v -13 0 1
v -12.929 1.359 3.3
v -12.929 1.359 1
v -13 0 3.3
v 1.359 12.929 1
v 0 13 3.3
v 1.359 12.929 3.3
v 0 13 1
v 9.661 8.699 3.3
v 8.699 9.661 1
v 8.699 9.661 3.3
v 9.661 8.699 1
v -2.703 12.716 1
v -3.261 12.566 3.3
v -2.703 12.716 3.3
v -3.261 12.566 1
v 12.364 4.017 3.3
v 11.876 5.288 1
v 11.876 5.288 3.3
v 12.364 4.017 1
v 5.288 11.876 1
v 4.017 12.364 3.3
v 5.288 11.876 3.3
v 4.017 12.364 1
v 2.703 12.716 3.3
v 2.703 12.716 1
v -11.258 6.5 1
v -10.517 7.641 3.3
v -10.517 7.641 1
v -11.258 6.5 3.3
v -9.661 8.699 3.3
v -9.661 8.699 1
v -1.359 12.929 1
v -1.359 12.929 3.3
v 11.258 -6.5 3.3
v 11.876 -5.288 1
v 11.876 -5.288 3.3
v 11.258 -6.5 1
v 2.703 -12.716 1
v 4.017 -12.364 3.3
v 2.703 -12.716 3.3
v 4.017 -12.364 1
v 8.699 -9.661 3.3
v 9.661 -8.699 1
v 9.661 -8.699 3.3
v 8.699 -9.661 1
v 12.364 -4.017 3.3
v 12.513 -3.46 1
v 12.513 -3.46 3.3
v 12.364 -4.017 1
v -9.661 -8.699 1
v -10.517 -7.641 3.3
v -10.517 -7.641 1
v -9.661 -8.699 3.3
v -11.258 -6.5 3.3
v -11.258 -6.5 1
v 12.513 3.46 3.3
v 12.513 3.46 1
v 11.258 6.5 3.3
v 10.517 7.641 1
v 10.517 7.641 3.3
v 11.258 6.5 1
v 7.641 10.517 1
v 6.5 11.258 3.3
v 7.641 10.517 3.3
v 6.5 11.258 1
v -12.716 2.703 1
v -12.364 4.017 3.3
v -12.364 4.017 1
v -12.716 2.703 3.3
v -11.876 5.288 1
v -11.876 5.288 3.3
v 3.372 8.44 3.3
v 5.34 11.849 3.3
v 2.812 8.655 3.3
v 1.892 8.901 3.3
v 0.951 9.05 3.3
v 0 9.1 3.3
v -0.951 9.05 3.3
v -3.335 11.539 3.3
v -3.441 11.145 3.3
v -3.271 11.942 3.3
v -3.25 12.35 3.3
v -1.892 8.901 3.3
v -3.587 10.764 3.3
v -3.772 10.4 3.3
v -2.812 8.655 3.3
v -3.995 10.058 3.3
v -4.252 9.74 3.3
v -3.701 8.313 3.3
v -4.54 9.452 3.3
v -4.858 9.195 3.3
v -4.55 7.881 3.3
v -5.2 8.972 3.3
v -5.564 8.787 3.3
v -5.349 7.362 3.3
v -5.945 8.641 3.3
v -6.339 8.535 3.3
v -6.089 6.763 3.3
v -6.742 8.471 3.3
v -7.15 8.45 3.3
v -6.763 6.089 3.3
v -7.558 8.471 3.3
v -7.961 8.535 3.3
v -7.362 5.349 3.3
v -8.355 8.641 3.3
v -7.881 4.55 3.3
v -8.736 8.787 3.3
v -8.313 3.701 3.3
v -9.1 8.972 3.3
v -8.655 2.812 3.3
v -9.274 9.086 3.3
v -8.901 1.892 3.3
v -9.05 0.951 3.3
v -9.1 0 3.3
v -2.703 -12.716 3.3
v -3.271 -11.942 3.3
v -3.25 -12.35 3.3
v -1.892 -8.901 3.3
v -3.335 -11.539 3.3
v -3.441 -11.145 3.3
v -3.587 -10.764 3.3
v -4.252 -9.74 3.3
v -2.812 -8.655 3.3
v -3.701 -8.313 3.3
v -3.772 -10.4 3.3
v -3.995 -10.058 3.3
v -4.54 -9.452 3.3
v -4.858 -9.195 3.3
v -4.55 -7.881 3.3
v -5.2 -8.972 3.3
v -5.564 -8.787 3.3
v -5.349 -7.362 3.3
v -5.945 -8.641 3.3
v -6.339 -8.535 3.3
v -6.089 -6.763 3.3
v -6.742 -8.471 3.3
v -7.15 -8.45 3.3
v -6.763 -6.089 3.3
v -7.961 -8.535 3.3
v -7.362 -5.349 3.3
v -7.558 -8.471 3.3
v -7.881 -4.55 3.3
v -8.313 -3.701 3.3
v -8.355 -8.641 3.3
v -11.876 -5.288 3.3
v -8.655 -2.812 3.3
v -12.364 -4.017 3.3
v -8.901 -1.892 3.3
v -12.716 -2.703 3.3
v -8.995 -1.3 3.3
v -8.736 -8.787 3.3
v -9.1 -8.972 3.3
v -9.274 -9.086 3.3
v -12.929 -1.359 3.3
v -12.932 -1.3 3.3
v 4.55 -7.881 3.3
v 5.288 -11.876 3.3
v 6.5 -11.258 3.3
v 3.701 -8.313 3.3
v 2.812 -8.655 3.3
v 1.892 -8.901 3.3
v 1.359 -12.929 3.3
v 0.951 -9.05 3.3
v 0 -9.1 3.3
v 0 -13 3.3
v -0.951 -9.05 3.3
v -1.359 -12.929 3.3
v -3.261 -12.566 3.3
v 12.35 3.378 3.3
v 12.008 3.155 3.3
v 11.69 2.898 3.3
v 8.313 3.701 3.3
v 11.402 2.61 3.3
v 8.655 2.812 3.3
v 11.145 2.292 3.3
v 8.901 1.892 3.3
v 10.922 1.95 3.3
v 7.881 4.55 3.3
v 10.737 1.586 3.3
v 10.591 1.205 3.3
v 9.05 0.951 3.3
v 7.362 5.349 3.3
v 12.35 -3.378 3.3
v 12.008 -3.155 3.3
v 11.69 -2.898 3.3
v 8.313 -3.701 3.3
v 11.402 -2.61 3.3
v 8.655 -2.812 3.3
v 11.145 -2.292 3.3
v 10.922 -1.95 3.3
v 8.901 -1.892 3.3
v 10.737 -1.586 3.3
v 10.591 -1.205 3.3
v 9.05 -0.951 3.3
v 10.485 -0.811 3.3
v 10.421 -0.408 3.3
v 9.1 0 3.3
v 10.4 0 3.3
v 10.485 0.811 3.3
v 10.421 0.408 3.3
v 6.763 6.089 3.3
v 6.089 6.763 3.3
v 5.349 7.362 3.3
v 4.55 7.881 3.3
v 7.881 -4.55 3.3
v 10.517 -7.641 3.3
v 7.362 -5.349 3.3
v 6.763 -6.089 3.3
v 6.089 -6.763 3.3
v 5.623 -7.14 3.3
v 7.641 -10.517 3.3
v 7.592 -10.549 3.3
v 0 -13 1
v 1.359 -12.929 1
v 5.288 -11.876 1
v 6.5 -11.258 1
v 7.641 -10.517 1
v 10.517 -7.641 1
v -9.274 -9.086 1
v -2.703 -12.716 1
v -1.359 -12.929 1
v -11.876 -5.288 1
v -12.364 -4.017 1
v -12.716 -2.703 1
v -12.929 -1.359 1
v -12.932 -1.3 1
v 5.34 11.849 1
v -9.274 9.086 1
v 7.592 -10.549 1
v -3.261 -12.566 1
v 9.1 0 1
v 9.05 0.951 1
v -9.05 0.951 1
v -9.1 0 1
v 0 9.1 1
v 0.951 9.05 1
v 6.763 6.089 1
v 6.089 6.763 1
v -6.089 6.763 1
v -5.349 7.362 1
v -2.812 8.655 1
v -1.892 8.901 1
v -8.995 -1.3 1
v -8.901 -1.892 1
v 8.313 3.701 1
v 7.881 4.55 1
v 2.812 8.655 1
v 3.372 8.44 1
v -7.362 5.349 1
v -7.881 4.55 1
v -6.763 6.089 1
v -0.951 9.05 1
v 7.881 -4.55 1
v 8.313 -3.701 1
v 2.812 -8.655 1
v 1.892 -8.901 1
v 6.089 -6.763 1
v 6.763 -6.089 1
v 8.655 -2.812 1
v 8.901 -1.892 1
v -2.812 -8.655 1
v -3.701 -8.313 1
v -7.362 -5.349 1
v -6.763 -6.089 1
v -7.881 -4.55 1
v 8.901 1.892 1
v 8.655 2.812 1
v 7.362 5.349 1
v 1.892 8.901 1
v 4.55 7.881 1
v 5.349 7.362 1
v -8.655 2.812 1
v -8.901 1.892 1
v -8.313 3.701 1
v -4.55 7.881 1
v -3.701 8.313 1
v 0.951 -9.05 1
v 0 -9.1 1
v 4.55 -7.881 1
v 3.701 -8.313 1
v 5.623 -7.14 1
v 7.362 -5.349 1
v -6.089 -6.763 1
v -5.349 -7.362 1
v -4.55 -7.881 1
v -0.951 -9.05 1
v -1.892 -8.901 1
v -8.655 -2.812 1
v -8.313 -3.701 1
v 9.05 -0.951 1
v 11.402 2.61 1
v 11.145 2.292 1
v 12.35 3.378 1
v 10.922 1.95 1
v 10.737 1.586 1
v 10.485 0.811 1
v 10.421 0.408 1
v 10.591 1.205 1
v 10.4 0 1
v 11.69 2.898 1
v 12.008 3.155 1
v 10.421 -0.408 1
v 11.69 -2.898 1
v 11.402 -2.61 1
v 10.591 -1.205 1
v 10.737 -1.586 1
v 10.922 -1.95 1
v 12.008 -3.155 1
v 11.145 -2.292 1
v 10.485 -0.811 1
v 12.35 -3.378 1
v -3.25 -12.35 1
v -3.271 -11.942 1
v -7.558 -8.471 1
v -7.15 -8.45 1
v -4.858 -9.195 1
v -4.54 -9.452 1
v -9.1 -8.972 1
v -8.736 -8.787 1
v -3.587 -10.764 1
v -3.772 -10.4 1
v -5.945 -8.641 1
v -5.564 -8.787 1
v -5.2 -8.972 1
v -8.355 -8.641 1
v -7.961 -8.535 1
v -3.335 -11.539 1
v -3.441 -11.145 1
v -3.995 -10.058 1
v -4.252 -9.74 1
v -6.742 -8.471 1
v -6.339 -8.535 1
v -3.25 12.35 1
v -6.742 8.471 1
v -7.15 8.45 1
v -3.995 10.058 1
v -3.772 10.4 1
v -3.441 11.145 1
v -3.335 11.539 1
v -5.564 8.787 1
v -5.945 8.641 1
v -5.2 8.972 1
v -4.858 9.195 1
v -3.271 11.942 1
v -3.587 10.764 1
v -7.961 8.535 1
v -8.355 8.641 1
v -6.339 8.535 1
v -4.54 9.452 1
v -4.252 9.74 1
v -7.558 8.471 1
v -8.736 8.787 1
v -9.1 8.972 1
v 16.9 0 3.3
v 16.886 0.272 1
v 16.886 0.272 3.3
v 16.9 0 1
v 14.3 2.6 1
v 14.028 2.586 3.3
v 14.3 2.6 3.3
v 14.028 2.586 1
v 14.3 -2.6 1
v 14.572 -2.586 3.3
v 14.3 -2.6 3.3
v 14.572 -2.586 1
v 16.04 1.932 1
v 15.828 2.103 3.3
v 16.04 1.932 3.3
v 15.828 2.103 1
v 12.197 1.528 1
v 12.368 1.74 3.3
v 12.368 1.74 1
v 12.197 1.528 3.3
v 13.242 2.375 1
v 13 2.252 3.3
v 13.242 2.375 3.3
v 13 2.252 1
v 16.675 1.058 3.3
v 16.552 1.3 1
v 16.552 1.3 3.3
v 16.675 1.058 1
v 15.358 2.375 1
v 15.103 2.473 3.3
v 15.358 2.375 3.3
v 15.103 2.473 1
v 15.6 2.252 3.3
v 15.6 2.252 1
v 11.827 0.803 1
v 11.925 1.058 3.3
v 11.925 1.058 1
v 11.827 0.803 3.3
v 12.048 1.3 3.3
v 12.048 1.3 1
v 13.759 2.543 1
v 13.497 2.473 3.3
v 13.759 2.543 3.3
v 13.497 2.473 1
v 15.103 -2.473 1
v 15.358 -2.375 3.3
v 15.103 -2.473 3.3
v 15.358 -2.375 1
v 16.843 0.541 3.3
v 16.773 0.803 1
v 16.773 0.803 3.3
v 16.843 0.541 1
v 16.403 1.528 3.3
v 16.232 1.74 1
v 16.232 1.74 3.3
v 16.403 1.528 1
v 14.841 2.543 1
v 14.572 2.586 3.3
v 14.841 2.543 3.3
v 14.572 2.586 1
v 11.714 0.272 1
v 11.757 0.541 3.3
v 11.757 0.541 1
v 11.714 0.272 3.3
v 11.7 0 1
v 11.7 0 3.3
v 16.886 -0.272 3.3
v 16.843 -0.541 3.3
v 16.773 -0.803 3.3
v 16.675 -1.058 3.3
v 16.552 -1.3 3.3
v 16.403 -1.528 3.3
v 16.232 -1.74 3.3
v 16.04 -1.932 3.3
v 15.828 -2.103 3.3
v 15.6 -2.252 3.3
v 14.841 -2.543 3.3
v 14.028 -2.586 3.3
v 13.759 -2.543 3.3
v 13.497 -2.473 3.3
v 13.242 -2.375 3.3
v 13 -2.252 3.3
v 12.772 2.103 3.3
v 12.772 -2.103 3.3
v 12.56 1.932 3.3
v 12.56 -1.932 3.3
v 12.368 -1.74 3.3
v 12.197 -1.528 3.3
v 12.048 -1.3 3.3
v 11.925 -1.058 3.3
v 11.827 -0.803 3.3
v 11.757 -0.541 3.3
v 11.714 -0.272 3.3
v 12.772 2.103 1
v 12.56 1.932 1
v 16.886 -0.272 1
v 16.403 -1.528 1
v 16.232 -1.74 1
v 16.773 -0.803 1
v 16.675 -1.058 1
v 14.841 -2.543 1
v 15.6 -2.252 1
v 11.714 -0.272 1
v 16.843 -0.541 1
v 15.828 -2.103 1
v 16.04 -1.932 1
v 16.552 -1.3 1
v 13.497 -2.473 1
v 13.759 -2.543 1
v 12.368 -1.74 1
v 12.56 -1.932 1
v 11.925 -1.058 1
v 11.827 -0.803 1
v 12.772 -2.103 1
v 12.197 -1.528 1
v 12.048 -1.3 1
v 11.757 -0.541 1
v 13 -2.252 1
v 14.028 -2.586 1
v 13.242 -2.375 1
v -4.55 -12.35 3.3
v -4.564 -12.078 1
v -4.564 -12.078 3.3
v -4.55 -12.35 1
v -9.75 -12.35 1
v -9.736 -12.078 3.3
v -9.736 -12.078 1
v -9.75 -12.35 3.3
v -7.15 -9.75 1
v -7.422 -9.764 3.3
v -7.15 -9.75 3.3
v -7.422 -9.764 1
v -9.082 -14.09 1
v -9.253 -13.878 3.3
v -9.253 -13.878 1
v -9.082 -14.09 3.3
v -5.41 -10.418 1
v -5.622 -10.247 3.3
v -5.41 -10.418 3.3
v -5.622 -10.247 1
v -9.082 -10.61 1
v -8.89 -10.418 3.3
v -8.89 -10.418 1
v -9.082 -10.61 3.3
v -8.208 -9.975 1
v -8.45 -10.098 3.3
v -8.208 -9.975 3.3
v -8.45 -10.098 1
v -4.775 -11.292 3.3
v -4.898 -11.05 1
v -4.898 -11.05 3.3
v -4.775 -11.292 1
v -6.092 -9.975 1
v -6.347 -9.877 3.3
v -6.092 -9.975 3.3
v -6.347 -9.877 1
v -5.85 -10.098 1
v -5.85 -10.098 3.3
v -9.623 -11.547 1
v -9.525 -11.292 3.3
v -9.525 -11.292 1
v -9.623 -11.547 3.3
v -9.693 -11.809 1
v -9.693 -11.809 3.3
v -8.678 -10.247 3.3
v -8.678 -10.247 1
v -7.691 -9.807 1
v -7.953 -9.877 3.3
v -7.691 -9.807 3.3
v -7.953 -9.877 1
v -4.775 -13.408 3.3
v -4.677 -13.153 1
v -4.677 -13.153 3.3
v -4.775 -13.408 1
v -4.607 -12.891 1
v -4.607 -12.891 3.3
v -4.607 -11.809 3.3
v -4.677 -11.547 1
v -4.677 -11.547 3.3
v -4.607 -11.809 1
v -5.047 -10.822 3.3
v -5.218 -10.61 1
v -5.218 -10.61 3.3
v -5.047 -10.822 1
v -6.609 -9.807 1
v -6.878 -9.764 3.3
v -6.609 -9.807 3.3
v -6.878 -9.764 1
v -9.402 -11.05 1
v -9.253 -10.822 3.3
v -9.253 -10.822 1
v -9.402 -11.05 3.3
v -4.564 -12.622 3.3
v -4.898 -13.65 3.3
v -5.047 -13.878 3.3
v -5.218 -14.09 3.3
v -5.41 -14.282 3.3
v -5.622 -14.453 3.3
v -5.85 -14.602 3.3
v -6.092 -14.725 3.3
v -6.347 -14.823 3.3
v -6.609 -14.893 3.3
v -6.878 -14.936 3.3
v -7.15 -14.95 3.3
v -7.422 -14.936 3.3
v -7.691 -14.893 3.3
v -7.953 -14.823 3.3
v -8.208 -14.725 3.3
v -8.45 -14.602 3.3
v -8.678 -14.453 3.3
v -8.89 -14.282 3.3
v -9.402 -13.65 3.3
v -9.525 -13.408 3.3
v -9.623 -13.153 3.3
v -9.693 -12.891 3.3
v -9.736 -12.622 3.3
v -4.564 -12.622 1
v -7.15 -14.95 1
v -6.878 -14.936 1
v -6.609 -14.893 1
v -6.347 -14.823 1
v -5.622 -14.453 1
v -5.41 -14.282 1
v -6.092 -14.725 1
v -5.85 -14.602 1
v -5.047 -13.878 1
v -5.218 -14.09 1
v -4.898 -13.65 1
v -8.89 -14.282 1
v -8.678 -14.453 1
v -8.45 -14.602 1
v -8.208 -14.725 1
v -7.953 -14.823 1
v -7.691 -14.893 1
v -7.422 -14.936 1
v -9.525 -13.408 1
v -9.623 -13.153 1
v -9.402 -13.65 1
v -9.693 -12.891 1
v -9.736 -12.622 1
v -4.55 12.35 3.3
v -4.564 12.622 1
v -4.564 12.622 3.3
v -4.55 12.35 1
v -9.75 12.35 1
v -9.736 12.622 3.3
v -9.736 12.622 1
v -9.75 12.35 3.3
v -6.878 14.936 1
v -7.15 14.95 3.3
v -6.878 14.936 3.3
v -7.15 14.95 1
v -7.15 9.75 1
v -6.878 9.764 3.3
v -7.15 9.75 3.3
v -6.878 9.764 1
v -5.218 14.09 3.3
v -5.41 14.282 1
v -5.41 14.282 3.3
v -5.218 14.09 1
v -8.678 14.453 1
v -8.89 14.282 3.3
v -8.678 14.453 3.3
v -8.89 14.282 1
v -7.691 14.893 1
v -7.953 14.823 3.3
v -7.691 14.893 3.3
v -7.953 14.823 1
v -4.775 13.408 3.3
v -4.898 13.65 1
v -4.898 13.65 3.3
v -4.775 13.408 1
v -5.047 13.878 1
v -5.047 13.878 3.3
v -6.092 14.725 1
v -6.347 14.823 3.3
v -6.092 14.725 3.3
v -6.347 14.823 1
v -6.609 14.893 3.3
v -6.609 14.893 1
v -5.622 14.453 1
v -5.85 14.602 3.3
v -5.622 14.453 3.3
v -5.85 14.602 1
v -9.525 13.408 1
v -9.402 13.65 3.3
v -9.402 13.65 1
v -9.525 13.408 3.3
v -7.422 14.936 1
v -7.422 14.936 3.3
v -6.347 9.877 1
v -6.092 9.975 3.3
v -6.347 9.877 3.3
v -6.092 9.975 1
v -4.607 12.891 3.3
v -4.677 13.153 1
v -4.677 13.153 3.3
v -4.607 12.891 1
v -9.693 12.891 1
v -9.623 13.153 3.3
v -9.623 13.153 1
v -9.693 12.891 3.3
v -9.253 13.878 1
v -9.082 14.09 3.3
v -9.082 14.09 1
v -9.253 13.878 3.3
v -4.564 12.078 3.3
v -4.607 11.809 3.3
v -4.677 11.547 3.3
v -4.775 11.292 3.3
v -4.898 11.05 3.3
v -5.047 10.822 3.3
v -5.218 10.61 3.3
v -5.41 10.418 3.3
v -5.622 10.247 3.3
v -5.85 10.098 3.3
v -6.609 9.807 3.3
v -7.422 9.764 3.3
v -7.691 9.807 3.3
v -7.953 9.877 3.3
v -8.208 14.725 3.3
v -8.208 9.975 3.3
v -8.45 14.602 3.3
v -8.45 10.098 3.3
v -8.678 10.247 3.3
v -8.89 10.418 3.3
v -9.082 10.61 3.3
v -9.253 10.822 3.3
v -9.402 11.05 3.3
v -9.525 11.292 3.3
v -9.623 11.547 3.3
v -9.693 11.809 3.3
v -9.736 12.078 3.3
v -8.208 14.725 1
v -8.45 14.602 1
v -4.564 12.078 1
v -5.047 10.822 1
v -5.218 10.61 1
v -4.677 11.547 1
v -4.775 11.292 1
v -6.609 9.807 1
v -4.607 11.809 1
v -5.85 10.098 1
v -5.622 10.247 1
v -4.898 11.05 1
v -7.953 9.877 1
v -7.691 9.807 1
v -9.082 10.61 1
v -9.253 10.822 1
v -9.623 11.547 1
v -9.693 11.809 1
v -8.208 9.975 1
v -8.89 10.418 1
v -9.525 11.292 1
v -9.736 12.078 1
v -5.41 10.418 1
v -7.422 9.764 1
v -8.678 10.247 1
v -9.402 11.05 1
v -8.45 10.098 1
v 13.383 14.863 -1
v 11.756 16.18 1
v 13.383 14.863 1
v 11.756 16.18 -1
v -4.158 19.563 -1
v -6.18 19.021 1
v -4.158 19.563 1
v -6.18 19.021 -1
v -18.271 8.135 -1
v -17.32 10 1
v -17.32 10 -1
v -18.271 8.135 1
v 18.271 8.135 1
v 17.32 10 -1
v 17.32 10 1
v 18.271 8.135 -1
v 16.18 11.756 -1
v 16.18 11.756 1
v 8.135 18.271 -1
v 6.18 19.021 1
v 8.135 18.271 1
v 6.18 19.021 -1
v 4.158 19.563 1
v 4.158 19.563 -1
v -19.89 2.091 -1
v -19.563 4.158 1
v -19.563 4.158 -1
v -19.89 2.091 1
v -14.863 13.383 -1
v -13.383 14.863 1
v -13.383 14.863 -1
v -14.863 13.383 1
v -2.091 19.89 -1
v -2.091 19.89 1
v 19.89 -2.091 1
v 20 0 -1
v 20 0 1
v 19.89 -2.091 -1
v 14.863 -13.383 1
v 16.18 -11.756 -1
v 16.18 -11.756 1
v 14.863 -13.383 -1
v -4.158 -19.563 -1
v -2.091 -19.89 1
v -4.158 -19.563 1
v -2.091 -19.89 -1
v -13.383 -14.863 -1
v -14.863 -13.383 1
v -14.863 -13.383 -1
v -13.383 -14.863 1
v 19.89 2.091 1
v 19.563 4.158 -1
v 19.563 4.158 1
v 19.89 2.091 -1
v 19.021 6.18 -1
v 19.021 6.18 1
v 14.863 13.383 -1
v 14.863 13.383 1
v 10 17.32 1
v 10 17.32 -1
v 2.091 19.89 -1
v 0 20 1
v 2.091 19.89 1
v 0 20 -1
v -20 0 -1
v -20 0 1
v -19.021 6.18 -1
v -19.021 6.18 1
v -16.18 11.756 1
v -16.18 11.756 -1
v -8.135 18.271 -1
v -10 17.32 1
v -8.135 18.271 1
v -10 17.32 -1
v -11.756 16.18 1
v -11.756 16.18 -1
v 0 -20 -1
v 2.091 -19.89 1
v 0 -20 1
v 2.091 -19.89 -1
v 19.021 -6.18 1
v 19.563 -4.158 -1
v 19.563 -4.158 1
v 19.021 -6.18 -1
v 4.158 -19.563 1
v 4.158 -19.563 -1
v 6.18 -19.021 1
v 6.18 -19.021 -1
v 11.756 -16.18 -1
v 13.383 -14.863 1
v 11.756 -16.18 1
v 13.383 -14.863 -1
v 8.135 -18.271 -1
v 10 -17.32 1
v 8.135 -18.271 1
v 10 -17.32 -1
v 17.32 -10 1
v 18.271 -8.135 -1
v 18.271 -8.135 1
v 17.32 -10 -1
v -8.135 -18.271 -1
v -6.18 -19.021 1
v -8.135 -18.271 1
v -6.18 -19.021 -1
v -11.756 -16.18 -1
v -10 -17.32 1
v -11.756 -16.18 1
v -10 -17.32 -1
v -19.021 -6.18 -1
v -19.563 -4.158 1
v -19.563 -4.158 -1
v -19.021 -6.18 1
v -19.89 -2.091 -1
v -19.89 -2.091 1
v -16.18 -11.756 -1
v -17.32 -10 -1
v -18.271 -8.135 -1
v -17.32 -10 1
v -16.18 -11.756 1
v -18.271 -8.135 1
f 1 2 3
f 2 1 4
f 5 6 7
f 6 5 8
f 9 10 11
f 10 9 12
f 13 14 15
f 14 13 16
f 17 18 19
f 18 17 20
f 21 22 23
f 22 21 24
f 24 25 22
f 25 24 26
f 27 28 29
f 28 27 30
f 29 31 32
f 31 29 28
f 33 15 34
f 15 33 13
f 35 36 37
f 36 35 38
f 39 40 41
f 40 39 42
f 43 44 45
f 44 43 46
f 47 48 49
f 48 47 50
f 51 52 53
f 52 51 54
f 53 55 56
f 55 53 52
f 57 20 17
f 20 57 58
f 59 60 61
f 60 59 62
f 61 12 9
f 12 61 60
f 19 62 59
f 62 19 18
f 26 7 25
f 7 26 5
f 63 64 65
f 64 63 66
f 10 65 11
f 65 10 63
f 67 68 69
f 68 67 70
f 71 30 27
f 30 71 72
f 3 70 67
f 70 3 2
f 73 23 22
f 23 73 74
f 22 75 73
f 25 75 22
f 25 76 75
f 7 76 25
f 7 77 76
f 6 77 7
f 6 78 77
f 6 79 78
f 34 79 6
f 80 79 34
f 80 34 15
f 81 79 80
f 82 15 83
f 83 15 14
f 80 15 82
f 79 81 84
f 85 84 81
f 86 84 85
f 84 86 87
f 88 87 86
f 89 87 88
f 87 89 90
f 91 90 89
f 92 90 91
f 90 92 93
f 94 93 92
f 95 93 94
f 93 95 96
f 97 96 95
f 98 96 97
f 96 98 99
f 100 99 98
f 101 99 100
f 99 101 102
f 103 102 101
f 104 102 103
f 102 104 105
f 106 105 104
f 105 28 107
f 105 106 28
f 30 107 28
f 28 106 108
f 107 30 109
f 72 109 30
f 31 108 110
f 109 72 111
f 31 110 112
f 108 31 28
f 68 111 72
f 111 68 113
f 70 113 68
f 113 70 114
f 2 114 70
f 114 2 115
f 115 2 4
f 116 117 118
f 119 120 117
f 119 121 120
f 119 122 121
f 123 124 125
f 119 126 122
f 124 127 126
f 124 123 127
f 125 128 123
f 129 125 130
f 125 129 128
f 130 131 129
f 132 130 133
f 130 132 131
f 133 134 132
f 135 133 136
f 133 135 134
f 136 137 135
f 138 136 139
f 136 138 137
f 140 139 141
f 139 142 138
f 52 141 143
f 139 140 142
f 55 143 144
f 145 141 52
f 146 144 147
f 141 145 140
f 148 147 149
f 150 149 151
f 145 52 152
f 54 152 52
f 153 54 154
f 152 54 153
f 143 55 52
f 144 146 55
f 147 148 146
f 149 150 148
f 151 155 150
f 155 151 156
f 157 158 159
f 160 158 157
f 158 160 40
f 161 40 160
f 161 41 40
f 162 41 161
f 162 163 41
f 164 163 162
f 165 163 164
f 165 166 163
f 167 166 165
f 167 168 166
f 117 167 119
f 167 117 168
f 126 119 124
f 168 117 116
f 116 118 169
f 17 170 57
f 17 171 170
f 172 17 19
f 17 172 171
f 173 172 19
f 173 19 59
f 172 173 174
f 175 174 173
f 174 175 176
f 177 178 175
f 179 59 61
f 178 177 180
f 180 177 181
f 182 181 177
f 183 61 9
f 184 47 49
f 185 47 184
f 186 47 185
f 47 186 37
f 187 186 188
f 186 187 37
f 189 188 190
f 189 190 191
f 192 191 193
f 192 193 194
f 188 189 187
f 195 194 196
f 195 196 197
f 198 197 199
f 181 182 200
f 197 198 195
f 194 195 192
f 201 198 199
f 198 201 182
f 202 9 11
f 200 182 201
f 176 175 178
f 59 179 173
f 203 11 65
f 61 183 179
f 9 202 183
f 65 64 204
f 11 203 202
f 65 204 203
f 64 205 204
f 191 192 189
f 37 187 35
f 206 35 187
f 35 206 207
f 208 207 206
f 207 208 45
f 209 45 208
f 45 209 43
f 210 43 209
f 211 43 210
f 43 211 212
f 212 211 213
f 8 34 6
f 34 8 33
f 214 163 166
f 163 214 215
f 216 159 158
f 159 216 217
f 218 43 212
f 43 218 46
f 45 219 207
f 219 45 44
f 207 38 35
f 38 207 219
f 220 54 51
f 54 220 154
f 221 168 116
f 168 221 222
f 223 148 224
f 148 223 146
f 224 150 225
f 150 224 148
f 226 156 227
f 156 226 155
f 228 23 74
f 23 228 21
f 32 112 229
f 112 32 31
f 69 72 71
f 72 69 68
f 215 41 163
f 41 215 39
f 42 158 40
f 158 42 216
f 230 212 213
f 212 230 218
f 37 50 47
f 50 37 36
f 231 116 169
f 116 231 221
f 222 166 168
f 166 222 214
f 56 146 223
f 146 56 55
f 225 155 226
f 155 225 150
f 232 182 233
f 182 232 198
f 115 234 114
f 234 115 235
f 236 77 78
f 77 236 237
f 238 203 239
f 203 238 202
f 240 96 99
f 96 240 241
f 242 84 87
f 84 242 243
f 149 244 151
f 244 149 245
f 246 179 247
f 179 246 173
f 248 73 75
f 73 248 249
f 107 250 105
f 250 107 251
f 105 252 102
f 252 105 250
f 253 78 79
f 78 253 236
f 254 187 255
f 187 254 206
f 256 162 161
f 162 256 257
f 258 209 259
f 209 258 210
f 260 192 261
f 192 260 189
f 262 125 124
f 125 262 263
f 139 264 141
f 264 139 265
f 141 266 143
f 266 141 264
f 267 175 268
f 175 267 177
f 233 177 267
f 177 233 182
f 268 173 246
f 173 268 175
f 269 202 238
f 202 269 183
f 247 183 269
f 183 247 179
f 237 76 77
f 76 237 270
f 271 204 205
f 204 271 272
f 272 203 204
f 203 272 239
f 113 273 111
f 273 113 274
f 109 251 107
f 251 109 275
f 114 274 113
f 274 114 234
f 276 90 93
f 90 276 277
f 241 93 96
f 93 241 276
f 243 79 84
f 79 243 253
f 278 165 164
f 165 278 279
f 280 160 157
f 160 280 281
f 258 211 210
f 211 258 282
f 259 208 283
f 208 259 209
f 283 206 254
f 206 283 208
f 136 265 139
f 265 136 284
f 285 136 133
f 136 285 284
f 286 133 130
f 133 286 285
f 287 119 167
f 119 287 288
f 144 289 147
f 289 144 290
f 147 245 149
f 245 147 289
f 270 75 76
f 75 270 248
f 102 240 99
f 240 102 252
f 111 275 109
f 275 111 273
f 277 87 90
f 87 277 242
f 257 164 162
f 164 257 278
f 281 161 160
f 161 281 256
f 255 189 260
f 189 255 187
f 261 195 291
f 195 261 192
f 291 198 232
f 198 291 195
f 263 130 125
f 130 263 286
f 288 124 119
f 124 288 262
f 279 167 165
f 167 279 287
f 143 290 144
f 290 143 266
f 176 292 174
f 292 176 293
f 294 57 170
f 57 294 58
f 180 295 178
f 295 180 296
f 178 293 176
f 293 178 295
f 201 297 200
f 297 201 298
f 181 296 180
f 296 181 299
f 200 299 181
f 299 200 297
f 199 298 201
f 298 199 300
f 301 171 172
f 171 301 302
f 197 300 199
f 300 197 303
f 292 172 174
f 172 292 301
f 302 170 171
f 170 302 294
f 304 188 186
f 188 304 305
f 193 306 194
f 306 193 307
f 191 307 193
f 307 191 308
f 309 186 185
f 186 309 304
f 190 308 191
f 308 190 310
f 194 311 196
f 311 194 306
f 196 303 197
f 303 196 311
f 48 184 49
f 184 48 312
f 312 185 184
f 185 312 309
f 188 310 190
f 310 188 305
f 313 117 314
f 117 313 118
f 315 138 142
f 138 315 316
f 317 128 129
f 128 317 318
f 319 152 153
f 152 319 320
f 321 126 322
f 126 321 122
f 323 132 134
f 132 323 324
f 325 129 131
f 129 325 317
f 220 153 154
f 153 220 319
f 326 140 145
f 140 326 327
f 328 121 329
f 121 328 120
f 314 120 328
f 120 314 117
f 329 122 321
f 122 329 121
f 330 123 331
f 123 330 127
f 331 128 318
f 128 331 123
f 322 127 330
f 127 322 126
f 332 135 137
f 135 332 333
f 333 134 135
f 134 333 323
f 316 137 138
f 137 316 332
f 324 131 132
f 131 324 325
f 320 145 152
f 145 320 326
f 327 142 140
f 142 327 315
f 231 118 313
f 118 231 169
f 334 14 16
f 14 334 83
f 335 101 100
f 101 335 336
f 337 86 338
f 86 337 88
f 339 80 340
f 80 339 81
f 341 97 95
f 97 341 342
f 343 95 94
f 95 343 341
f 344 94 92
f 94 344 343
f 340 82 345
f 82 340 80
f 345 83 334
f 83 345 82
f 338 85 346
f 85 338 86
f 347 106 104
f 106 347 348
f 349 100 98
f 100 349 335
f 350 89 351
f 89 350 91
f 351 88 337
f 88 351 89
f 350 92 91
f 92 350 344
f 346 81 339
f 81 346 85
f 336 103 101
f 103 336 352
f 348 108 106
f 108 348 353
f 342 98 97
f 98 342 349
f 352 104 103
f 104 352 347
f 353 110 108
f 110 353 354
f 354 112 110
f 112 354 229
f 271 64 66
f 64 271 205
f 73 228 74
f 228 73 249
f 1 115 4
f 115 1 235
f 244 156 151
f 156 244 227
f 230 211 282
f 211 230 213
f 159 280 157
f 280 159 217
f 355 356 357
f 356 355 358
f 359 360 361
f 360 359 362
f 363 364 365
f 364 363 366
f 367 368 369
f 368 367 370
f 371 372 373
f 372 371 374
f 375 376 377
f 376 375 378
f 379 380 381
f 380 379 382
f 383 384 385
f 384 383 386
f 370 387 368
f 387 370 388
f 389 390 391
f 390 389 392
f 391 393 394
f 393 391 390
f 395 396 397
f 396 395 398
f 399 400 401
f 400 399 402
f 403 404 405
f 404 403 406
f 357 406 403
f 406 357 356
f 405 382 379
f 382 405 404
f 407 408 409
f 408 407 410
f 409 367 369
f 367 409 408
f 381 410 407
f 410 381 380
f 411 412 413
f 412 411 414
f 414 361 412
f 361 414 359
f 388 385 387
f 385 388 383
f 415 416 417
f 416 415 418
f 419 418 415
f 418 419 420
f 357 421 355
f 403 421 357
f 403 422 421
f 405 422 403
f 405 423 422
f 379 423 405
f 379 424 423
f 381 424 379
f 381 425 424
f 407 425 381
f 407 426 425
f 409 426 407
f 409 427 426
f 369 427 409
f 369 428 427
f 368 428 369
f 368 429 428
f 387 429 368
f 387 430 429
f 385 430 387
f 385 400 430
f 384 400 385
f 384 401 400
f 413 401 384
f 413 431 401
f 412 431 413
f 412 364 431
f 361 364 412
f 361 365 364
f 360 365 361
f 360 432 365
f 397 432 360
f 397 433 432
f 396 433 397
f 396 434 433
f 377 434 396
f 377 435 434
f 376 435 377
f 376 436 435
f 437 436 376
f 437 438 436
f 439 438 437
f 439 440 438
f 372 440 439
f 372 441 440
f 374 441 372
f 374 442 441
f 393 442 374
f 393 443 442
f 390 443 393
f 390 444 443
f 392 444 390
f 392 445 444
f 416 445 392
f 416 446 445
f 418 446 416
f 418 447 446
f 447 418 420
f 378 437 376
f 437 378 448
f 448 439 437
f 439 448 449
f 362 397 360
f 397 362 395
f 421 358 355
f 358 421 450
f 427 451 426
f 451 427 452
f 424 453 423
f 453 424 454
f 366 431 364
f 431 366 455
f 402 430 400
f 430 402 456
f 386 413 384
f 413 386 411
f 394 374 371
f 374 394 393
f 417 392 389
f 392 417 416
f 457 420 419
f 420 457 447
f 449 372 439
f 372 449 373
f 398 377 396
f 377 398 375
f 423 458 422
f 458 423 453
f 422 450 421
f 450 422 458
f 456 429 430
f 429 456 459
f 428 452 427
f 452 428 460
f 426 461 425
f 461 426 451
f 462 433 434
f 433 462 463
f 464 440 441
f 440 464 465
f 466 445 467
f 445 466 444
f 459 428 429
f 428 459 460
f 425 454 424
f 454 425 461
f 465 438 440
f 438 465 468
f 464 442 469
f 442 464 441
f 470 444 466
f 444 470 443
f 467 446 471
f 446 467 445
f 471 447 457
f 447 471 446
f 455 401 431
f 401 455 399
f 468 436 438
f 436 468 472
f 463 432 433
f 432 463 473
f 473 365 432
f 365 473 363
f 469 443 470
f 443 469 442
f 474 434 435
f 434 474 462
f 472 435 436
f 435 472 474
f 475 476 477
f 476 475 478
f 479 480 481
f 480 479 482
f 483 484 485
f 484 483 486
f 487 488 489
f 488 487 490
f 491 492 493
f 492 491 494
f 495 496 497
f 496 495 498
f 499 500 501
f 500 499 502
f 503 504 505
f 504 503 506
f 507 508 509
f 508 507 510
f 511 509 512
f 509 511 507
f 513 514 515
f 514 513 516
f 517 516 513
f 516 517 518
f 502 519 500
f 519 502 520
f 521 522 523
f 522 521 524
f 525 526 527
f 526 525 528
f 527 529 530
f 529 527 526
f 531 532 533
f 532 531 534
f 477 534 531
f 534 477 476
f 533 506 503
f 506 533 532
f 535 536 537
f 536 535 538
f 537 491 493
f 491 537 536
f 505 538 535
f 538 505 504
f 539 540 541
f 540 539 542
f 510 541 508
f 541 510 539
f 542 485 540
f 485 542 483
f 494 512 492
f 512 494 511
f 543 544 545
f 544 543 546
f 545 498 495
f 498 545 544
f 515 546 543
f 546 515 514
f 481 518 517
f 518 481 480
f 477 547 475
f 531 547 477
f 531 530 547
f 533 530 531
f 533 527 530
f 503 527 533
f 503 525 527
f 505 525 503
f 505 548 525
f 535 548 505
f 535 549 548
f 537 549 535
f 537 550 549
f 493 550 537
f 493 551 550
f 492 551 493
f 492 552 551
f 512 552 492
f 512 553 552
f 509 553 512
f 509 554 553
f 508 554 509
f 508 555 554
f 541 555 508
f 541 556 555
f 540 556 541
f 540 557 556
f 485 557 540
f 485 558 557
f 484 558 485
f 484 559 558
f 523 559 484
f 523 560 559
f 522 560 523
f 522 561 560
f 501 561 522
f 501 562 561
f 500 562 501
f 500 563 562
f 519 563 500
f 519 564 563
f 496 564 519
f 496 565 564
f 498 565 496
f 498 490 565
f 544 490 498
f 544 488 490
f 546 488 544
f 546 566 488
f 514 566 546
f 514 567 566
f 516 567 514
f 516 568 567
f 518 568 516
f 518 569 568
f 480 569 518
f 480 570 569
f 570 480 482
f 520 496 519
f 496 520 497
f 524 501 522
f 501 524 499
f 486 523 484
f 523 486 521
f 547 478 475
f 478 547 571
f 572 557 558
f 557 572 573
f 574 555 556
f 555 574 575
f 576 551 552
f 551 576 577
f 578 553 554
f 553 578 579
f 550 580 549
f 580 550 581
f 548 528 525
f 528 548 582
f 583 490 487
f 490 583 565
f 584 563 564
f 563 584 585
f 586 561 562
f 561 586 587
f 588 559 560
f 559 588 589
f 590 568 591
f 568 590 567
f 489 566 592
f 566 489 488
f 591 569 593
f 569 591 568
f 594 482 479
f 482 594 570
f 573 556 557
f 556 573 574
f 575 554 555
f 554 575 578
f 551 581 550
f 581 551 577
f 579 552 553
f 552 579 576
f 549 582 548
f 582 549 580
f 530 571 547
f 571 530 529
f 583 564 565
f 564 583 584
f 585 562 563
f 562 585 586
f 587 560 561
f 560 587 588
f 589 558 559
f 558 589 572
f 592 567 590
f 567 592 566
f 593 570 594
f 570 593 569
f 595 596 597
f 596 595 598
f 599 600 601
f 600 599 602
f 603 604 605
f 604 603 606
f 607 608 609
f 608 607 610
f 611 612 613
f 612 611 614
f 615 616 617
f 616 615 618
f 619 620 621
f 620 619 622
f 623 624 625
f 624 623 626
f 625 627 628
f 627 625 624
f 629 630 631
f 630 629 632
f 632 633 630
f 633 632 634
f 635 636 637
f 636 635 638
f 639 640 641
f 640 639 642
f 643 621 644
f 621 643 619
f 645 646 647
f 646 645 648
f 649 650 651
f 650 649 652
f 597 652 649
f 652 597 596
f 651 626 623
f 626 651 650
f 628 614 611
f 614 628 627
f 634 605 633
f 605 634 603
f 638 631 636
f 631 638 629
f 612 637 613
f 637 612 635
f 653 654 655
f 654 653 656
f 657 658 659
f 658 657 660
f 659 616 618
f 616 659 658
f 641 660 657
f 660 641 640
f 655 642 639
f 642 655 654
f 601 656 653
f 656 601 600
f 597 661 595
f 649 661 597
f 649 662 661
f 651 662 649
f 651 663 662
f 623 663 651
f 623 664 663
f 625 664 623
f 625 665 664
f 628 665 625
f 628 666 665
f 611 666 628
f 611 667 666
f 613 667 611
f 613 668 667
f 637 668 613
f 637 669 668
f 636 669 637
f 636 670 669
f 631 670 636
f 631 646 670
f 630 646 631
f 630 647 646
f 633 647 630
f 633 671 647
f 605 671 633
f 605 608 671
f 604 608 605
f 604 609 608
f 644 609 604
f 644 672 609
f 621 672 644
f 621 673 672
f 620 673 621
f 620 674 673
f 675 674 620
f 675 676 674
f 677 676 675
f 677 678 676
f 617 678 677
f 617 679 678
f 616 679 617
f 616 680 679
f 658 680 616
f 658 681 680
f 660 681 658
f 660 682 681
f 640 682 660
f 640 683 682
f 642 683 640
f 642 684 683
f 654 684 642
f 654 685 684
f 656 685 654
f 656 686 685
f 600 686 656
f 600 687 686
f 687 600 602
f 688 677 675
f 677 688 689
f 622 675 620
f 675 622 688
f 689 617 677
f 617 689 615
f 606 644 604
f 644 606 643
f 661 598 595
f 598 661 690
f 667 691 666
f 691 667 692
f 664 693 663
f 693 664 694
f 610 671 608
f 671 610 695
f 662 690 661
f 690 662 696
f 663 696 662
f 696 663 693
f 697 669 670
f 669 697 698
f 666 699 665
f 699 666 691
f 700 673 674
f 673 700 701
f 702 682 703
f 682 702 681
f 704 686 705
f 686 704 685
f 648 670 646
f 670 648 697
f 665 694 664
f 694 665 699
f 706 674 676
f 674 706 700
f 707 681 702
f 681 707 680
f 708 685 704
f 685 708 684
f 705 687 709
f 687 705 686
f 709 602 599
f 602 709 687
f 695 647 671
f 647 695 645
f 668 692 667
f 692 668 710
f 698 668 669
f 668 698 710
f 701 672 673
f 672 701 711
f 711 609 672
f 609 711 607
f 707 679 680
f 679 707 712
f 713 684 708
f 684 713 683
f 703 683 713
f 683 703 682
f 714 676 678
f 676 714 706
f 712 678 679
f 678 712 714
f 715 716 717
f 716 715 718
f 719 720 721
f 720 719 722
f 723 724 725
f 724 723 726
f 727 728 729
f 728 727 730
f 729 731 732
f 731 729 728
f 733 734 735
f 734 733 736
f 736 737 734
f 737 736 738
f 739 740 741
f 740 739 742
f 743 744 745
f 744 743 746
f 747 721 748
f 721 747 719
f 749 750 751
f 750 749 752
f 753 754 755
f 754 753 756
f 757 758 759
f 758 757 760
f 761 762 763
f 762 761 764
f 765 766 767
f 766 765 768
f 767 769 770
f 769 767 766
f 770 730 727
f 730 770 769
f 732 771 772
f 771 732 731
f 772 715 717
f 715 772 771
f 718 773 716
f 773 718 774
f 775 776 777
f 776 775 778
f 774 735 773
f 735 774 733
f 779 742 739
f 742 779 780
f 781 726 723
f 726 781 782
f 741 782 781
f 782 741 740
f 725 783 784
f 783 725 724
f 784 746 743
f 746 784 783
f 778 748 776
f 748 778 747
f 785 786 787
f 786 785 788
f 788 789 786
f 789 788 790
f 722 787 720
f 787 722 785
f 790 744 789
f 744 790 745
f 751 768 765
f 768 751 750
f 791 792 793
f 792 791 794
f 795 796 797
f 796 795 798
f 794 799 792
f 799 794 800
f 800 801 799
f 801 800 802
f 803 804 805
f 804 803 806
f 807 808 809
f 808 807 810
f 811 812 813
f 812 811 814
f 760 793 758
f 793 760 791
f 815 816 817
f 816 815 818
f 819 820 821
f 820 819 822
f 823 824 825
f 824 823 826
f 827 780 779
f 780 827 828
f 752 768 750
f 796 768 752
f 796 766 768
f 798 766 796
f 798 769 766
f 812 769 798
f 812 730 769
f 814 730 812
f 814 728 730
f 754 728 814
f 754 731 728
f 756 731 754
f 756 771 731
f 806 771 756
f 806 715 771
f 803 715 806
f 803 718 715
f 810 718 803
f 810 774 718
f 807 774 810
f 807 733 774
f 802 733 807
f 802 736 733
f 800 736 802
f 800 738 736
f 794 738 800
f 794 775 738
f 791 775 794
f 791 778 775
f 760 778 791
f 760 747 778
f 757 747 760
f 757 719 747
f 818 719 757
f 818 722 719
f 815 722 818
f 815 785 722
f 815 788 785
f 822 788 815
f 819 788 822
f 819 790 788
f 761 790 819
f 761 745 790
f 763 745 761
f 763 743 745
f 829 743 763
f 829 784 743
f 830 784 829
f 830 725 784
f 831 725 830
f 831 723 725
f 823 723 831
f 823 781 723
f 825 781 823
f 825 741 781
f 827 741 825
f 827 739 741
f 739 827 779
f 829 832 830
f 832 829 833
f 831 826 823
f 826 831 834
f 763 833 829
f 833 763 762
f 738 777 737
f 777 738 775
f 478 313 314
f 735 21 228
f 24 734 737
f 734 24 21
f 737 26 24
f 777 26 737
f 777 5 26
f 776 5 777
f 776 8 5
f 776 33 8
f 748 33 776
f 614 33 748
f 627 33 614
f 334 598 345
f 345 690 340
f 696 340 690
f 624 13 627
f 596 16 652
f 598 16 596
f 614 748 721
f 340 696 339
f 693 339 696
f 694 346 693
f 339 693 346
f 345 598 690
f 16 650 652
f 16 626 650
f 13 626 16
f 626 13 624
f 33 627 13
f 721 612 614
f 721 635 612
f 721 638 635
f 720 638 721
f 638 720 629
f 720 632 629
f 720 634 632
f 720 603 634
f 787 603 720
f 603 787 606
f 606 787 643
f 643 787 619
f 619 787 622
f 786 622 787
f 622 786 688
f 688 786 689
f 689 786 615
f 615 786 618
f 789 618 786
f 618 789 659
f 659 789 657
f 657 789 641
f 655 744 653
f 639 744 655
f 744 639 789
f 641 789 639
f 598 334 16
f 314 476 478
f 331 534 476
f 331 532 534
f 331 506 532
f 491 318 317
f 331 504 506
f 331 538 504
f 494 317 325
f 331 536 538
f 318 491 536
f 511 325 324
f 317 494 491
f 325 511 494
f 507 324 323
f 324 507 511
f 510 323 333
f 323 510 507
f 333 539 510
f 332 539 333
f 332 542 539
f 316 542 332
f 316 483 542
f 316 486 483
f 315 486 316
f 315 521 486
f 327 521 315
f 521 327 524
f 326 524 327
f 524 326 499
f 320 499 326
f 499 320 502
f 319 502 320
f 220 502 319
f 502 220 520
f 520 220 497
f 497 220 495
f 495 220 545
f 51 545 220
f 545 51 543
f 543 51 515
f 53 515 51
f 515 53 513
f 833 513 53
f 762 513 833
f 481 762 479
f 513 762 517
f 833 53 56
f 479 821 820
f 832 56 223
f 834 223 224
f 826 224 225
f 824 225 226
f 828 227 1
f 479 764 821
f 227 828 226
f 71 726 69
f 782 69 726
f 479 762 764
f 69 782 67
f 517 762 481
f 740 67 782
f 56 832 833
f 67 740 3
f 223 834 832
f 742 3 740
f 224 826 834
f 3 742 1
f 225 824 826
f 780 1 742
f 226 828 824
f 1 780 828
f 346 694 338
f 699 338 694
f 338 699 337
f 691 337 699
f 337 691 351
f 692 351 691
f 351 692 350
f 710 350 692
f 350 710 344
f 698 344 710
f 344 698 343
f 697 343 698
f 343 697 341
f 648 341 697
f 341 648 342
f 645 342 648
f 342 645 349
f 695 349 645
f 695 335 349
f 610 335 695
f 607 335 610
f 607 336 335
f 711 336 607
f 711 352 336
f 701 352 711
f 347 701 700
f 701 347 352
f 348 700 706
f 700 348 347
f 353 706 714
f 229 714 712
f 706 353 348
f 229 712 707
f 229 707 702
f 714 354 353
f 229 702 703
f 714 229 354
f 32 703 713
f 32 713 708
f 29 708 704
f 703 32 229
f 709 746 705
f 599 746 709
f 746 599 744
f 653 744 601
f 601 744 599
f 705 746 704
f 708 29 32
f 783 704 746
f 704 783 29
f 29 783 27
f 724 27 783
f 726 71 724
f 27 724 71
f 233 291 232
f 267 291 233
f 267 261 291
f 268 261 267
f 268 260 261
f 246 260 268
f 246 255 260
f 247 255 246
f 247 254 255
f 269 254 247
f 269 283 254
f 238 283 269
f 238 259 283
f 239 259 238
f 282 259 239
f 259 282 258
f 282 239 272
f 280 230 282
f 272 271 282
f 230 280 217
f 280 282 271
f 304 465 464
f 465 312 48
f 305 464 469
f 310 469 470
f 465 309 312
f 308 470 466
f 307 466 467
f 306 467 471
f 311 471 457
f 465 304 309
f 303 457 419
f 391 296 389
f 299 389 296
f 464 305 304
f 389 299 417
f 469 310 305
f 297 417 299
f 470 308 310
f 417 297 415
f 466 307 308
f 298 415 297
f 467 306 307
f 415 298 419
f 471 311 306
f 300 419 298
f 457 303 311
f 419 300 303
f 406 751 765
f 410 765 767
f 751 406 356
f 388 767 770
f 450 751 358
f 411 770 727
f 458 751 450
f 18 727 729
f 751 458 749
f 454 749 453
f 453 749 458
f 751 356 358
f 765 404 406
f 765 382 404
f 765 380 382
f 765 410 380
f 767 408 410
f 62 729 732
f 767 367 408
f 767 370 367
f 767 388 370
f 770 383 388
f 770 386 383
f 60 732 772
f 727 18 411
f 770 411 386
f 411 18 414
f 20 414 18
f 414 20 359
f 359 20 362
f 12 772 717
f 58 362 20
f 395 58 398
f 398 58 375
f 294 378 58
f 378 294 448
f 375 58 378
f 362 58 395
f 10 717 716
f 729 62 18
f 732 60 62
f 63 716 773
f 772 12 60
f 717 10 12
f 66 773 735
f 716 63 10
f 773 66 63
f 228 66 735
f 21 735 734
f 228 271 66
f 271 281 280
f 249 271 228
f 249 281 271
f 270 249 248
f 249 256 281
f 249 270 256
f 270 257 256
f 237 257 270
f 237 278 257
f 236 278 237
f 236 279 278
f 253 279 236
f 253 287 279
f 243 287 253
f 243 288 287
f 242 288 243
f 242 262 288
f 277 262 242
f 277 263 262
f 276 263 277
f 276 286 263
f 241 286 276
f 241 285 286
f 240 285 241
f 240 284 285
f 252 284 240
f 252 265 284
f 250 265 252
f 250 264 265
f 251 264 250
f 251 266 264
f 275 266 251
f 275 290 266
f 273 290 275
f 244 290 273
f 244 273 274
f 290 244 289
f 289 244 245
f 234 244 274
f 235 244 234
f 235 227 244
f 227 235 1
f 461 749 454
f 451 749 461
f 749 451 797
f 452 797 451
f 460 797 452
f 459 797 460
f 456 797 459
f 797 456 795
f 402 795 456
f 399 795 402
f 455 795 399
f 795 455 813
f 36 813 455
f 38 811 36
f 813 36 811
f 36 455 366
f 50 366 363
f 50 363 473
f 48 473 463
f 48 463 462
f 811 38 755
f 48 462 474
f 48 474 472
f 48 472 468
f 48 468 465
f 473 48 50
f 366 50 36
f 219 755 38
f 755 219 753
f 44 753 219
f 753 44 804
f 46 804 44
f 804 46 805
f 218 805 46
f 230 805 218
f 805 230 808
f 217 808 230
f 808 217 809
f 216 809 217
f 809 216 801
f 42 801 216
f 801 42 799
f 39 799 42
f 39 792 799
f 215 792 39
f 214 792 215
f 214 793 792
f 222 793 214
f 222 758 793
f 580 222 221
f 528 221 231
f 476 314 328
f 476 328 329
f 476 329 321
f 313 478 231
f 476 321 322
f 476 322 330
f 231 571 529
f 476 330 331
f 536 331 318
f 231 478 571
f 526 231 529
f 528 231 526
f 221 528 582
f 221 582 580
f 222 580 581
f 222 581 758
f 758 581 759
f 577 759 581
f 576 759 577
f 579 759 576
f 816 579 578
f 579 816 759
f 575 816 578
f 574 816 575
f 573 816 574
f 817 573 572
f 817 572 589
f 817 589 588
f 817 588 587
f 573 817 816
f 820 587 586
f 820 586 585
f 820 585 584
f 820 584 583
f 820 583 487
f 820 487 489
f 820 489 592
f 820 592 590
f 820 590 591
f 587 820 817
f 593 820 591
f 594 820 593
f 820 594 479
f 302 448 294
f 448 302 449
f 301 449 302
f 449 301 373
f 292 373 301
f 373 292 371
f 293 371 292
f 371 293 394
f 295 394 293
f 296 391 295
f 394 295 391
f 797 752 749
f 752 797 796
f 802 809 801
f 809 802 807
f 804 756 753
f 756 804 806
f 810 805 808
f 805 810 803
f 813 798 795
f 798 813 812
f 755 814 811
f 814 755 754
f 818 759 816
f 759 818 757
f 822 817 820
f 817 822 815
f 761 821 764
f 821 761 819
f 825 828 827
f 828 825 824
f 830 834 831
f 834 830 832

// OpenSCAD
$fn=60;

module plate(){
cylinder(r=20,h=2,center=true);
}

module logo(){
difference(){
difference(){
cylinder(r=10,h=2,center=true);
cylinder(r=7,h=3,center=true);
}
translate([11,0,0]){
cylinder(r=3,h=3,center=true);
}
translate([-5.5,-9.5,0]){
cylinder(r=3,h=3,center=true);
}
translate([-5.5,9.5,0]){
cylinder(r=3,h=3,center=true);
}
translate([0,0,-5])
rotate(a=60,v=[0,0,1]){
cube([133,1,13]);
}
translate([0,0,-5])
rotate(a=180,v=[0,0,1]){
cube([133,1,13]);
}
translate([0,0,-5])
rotate(a=-60,v=[0,0,1]){
cube([133,1,13]);
}

}
translate([11,0,0]){
cylinder(r=2,h=2,center=true);
}
translate([-5.5,-9.5,0]){
cylinder(r=2,h=2,center=true);
}
translate([-5.5,9.5,0]){
cylinder(r=2,h=2,center=true);
}
}
plate();
translate([0,0,2]){
scale(1.3,1.3,1.3){
logo();}
}
//logo();
